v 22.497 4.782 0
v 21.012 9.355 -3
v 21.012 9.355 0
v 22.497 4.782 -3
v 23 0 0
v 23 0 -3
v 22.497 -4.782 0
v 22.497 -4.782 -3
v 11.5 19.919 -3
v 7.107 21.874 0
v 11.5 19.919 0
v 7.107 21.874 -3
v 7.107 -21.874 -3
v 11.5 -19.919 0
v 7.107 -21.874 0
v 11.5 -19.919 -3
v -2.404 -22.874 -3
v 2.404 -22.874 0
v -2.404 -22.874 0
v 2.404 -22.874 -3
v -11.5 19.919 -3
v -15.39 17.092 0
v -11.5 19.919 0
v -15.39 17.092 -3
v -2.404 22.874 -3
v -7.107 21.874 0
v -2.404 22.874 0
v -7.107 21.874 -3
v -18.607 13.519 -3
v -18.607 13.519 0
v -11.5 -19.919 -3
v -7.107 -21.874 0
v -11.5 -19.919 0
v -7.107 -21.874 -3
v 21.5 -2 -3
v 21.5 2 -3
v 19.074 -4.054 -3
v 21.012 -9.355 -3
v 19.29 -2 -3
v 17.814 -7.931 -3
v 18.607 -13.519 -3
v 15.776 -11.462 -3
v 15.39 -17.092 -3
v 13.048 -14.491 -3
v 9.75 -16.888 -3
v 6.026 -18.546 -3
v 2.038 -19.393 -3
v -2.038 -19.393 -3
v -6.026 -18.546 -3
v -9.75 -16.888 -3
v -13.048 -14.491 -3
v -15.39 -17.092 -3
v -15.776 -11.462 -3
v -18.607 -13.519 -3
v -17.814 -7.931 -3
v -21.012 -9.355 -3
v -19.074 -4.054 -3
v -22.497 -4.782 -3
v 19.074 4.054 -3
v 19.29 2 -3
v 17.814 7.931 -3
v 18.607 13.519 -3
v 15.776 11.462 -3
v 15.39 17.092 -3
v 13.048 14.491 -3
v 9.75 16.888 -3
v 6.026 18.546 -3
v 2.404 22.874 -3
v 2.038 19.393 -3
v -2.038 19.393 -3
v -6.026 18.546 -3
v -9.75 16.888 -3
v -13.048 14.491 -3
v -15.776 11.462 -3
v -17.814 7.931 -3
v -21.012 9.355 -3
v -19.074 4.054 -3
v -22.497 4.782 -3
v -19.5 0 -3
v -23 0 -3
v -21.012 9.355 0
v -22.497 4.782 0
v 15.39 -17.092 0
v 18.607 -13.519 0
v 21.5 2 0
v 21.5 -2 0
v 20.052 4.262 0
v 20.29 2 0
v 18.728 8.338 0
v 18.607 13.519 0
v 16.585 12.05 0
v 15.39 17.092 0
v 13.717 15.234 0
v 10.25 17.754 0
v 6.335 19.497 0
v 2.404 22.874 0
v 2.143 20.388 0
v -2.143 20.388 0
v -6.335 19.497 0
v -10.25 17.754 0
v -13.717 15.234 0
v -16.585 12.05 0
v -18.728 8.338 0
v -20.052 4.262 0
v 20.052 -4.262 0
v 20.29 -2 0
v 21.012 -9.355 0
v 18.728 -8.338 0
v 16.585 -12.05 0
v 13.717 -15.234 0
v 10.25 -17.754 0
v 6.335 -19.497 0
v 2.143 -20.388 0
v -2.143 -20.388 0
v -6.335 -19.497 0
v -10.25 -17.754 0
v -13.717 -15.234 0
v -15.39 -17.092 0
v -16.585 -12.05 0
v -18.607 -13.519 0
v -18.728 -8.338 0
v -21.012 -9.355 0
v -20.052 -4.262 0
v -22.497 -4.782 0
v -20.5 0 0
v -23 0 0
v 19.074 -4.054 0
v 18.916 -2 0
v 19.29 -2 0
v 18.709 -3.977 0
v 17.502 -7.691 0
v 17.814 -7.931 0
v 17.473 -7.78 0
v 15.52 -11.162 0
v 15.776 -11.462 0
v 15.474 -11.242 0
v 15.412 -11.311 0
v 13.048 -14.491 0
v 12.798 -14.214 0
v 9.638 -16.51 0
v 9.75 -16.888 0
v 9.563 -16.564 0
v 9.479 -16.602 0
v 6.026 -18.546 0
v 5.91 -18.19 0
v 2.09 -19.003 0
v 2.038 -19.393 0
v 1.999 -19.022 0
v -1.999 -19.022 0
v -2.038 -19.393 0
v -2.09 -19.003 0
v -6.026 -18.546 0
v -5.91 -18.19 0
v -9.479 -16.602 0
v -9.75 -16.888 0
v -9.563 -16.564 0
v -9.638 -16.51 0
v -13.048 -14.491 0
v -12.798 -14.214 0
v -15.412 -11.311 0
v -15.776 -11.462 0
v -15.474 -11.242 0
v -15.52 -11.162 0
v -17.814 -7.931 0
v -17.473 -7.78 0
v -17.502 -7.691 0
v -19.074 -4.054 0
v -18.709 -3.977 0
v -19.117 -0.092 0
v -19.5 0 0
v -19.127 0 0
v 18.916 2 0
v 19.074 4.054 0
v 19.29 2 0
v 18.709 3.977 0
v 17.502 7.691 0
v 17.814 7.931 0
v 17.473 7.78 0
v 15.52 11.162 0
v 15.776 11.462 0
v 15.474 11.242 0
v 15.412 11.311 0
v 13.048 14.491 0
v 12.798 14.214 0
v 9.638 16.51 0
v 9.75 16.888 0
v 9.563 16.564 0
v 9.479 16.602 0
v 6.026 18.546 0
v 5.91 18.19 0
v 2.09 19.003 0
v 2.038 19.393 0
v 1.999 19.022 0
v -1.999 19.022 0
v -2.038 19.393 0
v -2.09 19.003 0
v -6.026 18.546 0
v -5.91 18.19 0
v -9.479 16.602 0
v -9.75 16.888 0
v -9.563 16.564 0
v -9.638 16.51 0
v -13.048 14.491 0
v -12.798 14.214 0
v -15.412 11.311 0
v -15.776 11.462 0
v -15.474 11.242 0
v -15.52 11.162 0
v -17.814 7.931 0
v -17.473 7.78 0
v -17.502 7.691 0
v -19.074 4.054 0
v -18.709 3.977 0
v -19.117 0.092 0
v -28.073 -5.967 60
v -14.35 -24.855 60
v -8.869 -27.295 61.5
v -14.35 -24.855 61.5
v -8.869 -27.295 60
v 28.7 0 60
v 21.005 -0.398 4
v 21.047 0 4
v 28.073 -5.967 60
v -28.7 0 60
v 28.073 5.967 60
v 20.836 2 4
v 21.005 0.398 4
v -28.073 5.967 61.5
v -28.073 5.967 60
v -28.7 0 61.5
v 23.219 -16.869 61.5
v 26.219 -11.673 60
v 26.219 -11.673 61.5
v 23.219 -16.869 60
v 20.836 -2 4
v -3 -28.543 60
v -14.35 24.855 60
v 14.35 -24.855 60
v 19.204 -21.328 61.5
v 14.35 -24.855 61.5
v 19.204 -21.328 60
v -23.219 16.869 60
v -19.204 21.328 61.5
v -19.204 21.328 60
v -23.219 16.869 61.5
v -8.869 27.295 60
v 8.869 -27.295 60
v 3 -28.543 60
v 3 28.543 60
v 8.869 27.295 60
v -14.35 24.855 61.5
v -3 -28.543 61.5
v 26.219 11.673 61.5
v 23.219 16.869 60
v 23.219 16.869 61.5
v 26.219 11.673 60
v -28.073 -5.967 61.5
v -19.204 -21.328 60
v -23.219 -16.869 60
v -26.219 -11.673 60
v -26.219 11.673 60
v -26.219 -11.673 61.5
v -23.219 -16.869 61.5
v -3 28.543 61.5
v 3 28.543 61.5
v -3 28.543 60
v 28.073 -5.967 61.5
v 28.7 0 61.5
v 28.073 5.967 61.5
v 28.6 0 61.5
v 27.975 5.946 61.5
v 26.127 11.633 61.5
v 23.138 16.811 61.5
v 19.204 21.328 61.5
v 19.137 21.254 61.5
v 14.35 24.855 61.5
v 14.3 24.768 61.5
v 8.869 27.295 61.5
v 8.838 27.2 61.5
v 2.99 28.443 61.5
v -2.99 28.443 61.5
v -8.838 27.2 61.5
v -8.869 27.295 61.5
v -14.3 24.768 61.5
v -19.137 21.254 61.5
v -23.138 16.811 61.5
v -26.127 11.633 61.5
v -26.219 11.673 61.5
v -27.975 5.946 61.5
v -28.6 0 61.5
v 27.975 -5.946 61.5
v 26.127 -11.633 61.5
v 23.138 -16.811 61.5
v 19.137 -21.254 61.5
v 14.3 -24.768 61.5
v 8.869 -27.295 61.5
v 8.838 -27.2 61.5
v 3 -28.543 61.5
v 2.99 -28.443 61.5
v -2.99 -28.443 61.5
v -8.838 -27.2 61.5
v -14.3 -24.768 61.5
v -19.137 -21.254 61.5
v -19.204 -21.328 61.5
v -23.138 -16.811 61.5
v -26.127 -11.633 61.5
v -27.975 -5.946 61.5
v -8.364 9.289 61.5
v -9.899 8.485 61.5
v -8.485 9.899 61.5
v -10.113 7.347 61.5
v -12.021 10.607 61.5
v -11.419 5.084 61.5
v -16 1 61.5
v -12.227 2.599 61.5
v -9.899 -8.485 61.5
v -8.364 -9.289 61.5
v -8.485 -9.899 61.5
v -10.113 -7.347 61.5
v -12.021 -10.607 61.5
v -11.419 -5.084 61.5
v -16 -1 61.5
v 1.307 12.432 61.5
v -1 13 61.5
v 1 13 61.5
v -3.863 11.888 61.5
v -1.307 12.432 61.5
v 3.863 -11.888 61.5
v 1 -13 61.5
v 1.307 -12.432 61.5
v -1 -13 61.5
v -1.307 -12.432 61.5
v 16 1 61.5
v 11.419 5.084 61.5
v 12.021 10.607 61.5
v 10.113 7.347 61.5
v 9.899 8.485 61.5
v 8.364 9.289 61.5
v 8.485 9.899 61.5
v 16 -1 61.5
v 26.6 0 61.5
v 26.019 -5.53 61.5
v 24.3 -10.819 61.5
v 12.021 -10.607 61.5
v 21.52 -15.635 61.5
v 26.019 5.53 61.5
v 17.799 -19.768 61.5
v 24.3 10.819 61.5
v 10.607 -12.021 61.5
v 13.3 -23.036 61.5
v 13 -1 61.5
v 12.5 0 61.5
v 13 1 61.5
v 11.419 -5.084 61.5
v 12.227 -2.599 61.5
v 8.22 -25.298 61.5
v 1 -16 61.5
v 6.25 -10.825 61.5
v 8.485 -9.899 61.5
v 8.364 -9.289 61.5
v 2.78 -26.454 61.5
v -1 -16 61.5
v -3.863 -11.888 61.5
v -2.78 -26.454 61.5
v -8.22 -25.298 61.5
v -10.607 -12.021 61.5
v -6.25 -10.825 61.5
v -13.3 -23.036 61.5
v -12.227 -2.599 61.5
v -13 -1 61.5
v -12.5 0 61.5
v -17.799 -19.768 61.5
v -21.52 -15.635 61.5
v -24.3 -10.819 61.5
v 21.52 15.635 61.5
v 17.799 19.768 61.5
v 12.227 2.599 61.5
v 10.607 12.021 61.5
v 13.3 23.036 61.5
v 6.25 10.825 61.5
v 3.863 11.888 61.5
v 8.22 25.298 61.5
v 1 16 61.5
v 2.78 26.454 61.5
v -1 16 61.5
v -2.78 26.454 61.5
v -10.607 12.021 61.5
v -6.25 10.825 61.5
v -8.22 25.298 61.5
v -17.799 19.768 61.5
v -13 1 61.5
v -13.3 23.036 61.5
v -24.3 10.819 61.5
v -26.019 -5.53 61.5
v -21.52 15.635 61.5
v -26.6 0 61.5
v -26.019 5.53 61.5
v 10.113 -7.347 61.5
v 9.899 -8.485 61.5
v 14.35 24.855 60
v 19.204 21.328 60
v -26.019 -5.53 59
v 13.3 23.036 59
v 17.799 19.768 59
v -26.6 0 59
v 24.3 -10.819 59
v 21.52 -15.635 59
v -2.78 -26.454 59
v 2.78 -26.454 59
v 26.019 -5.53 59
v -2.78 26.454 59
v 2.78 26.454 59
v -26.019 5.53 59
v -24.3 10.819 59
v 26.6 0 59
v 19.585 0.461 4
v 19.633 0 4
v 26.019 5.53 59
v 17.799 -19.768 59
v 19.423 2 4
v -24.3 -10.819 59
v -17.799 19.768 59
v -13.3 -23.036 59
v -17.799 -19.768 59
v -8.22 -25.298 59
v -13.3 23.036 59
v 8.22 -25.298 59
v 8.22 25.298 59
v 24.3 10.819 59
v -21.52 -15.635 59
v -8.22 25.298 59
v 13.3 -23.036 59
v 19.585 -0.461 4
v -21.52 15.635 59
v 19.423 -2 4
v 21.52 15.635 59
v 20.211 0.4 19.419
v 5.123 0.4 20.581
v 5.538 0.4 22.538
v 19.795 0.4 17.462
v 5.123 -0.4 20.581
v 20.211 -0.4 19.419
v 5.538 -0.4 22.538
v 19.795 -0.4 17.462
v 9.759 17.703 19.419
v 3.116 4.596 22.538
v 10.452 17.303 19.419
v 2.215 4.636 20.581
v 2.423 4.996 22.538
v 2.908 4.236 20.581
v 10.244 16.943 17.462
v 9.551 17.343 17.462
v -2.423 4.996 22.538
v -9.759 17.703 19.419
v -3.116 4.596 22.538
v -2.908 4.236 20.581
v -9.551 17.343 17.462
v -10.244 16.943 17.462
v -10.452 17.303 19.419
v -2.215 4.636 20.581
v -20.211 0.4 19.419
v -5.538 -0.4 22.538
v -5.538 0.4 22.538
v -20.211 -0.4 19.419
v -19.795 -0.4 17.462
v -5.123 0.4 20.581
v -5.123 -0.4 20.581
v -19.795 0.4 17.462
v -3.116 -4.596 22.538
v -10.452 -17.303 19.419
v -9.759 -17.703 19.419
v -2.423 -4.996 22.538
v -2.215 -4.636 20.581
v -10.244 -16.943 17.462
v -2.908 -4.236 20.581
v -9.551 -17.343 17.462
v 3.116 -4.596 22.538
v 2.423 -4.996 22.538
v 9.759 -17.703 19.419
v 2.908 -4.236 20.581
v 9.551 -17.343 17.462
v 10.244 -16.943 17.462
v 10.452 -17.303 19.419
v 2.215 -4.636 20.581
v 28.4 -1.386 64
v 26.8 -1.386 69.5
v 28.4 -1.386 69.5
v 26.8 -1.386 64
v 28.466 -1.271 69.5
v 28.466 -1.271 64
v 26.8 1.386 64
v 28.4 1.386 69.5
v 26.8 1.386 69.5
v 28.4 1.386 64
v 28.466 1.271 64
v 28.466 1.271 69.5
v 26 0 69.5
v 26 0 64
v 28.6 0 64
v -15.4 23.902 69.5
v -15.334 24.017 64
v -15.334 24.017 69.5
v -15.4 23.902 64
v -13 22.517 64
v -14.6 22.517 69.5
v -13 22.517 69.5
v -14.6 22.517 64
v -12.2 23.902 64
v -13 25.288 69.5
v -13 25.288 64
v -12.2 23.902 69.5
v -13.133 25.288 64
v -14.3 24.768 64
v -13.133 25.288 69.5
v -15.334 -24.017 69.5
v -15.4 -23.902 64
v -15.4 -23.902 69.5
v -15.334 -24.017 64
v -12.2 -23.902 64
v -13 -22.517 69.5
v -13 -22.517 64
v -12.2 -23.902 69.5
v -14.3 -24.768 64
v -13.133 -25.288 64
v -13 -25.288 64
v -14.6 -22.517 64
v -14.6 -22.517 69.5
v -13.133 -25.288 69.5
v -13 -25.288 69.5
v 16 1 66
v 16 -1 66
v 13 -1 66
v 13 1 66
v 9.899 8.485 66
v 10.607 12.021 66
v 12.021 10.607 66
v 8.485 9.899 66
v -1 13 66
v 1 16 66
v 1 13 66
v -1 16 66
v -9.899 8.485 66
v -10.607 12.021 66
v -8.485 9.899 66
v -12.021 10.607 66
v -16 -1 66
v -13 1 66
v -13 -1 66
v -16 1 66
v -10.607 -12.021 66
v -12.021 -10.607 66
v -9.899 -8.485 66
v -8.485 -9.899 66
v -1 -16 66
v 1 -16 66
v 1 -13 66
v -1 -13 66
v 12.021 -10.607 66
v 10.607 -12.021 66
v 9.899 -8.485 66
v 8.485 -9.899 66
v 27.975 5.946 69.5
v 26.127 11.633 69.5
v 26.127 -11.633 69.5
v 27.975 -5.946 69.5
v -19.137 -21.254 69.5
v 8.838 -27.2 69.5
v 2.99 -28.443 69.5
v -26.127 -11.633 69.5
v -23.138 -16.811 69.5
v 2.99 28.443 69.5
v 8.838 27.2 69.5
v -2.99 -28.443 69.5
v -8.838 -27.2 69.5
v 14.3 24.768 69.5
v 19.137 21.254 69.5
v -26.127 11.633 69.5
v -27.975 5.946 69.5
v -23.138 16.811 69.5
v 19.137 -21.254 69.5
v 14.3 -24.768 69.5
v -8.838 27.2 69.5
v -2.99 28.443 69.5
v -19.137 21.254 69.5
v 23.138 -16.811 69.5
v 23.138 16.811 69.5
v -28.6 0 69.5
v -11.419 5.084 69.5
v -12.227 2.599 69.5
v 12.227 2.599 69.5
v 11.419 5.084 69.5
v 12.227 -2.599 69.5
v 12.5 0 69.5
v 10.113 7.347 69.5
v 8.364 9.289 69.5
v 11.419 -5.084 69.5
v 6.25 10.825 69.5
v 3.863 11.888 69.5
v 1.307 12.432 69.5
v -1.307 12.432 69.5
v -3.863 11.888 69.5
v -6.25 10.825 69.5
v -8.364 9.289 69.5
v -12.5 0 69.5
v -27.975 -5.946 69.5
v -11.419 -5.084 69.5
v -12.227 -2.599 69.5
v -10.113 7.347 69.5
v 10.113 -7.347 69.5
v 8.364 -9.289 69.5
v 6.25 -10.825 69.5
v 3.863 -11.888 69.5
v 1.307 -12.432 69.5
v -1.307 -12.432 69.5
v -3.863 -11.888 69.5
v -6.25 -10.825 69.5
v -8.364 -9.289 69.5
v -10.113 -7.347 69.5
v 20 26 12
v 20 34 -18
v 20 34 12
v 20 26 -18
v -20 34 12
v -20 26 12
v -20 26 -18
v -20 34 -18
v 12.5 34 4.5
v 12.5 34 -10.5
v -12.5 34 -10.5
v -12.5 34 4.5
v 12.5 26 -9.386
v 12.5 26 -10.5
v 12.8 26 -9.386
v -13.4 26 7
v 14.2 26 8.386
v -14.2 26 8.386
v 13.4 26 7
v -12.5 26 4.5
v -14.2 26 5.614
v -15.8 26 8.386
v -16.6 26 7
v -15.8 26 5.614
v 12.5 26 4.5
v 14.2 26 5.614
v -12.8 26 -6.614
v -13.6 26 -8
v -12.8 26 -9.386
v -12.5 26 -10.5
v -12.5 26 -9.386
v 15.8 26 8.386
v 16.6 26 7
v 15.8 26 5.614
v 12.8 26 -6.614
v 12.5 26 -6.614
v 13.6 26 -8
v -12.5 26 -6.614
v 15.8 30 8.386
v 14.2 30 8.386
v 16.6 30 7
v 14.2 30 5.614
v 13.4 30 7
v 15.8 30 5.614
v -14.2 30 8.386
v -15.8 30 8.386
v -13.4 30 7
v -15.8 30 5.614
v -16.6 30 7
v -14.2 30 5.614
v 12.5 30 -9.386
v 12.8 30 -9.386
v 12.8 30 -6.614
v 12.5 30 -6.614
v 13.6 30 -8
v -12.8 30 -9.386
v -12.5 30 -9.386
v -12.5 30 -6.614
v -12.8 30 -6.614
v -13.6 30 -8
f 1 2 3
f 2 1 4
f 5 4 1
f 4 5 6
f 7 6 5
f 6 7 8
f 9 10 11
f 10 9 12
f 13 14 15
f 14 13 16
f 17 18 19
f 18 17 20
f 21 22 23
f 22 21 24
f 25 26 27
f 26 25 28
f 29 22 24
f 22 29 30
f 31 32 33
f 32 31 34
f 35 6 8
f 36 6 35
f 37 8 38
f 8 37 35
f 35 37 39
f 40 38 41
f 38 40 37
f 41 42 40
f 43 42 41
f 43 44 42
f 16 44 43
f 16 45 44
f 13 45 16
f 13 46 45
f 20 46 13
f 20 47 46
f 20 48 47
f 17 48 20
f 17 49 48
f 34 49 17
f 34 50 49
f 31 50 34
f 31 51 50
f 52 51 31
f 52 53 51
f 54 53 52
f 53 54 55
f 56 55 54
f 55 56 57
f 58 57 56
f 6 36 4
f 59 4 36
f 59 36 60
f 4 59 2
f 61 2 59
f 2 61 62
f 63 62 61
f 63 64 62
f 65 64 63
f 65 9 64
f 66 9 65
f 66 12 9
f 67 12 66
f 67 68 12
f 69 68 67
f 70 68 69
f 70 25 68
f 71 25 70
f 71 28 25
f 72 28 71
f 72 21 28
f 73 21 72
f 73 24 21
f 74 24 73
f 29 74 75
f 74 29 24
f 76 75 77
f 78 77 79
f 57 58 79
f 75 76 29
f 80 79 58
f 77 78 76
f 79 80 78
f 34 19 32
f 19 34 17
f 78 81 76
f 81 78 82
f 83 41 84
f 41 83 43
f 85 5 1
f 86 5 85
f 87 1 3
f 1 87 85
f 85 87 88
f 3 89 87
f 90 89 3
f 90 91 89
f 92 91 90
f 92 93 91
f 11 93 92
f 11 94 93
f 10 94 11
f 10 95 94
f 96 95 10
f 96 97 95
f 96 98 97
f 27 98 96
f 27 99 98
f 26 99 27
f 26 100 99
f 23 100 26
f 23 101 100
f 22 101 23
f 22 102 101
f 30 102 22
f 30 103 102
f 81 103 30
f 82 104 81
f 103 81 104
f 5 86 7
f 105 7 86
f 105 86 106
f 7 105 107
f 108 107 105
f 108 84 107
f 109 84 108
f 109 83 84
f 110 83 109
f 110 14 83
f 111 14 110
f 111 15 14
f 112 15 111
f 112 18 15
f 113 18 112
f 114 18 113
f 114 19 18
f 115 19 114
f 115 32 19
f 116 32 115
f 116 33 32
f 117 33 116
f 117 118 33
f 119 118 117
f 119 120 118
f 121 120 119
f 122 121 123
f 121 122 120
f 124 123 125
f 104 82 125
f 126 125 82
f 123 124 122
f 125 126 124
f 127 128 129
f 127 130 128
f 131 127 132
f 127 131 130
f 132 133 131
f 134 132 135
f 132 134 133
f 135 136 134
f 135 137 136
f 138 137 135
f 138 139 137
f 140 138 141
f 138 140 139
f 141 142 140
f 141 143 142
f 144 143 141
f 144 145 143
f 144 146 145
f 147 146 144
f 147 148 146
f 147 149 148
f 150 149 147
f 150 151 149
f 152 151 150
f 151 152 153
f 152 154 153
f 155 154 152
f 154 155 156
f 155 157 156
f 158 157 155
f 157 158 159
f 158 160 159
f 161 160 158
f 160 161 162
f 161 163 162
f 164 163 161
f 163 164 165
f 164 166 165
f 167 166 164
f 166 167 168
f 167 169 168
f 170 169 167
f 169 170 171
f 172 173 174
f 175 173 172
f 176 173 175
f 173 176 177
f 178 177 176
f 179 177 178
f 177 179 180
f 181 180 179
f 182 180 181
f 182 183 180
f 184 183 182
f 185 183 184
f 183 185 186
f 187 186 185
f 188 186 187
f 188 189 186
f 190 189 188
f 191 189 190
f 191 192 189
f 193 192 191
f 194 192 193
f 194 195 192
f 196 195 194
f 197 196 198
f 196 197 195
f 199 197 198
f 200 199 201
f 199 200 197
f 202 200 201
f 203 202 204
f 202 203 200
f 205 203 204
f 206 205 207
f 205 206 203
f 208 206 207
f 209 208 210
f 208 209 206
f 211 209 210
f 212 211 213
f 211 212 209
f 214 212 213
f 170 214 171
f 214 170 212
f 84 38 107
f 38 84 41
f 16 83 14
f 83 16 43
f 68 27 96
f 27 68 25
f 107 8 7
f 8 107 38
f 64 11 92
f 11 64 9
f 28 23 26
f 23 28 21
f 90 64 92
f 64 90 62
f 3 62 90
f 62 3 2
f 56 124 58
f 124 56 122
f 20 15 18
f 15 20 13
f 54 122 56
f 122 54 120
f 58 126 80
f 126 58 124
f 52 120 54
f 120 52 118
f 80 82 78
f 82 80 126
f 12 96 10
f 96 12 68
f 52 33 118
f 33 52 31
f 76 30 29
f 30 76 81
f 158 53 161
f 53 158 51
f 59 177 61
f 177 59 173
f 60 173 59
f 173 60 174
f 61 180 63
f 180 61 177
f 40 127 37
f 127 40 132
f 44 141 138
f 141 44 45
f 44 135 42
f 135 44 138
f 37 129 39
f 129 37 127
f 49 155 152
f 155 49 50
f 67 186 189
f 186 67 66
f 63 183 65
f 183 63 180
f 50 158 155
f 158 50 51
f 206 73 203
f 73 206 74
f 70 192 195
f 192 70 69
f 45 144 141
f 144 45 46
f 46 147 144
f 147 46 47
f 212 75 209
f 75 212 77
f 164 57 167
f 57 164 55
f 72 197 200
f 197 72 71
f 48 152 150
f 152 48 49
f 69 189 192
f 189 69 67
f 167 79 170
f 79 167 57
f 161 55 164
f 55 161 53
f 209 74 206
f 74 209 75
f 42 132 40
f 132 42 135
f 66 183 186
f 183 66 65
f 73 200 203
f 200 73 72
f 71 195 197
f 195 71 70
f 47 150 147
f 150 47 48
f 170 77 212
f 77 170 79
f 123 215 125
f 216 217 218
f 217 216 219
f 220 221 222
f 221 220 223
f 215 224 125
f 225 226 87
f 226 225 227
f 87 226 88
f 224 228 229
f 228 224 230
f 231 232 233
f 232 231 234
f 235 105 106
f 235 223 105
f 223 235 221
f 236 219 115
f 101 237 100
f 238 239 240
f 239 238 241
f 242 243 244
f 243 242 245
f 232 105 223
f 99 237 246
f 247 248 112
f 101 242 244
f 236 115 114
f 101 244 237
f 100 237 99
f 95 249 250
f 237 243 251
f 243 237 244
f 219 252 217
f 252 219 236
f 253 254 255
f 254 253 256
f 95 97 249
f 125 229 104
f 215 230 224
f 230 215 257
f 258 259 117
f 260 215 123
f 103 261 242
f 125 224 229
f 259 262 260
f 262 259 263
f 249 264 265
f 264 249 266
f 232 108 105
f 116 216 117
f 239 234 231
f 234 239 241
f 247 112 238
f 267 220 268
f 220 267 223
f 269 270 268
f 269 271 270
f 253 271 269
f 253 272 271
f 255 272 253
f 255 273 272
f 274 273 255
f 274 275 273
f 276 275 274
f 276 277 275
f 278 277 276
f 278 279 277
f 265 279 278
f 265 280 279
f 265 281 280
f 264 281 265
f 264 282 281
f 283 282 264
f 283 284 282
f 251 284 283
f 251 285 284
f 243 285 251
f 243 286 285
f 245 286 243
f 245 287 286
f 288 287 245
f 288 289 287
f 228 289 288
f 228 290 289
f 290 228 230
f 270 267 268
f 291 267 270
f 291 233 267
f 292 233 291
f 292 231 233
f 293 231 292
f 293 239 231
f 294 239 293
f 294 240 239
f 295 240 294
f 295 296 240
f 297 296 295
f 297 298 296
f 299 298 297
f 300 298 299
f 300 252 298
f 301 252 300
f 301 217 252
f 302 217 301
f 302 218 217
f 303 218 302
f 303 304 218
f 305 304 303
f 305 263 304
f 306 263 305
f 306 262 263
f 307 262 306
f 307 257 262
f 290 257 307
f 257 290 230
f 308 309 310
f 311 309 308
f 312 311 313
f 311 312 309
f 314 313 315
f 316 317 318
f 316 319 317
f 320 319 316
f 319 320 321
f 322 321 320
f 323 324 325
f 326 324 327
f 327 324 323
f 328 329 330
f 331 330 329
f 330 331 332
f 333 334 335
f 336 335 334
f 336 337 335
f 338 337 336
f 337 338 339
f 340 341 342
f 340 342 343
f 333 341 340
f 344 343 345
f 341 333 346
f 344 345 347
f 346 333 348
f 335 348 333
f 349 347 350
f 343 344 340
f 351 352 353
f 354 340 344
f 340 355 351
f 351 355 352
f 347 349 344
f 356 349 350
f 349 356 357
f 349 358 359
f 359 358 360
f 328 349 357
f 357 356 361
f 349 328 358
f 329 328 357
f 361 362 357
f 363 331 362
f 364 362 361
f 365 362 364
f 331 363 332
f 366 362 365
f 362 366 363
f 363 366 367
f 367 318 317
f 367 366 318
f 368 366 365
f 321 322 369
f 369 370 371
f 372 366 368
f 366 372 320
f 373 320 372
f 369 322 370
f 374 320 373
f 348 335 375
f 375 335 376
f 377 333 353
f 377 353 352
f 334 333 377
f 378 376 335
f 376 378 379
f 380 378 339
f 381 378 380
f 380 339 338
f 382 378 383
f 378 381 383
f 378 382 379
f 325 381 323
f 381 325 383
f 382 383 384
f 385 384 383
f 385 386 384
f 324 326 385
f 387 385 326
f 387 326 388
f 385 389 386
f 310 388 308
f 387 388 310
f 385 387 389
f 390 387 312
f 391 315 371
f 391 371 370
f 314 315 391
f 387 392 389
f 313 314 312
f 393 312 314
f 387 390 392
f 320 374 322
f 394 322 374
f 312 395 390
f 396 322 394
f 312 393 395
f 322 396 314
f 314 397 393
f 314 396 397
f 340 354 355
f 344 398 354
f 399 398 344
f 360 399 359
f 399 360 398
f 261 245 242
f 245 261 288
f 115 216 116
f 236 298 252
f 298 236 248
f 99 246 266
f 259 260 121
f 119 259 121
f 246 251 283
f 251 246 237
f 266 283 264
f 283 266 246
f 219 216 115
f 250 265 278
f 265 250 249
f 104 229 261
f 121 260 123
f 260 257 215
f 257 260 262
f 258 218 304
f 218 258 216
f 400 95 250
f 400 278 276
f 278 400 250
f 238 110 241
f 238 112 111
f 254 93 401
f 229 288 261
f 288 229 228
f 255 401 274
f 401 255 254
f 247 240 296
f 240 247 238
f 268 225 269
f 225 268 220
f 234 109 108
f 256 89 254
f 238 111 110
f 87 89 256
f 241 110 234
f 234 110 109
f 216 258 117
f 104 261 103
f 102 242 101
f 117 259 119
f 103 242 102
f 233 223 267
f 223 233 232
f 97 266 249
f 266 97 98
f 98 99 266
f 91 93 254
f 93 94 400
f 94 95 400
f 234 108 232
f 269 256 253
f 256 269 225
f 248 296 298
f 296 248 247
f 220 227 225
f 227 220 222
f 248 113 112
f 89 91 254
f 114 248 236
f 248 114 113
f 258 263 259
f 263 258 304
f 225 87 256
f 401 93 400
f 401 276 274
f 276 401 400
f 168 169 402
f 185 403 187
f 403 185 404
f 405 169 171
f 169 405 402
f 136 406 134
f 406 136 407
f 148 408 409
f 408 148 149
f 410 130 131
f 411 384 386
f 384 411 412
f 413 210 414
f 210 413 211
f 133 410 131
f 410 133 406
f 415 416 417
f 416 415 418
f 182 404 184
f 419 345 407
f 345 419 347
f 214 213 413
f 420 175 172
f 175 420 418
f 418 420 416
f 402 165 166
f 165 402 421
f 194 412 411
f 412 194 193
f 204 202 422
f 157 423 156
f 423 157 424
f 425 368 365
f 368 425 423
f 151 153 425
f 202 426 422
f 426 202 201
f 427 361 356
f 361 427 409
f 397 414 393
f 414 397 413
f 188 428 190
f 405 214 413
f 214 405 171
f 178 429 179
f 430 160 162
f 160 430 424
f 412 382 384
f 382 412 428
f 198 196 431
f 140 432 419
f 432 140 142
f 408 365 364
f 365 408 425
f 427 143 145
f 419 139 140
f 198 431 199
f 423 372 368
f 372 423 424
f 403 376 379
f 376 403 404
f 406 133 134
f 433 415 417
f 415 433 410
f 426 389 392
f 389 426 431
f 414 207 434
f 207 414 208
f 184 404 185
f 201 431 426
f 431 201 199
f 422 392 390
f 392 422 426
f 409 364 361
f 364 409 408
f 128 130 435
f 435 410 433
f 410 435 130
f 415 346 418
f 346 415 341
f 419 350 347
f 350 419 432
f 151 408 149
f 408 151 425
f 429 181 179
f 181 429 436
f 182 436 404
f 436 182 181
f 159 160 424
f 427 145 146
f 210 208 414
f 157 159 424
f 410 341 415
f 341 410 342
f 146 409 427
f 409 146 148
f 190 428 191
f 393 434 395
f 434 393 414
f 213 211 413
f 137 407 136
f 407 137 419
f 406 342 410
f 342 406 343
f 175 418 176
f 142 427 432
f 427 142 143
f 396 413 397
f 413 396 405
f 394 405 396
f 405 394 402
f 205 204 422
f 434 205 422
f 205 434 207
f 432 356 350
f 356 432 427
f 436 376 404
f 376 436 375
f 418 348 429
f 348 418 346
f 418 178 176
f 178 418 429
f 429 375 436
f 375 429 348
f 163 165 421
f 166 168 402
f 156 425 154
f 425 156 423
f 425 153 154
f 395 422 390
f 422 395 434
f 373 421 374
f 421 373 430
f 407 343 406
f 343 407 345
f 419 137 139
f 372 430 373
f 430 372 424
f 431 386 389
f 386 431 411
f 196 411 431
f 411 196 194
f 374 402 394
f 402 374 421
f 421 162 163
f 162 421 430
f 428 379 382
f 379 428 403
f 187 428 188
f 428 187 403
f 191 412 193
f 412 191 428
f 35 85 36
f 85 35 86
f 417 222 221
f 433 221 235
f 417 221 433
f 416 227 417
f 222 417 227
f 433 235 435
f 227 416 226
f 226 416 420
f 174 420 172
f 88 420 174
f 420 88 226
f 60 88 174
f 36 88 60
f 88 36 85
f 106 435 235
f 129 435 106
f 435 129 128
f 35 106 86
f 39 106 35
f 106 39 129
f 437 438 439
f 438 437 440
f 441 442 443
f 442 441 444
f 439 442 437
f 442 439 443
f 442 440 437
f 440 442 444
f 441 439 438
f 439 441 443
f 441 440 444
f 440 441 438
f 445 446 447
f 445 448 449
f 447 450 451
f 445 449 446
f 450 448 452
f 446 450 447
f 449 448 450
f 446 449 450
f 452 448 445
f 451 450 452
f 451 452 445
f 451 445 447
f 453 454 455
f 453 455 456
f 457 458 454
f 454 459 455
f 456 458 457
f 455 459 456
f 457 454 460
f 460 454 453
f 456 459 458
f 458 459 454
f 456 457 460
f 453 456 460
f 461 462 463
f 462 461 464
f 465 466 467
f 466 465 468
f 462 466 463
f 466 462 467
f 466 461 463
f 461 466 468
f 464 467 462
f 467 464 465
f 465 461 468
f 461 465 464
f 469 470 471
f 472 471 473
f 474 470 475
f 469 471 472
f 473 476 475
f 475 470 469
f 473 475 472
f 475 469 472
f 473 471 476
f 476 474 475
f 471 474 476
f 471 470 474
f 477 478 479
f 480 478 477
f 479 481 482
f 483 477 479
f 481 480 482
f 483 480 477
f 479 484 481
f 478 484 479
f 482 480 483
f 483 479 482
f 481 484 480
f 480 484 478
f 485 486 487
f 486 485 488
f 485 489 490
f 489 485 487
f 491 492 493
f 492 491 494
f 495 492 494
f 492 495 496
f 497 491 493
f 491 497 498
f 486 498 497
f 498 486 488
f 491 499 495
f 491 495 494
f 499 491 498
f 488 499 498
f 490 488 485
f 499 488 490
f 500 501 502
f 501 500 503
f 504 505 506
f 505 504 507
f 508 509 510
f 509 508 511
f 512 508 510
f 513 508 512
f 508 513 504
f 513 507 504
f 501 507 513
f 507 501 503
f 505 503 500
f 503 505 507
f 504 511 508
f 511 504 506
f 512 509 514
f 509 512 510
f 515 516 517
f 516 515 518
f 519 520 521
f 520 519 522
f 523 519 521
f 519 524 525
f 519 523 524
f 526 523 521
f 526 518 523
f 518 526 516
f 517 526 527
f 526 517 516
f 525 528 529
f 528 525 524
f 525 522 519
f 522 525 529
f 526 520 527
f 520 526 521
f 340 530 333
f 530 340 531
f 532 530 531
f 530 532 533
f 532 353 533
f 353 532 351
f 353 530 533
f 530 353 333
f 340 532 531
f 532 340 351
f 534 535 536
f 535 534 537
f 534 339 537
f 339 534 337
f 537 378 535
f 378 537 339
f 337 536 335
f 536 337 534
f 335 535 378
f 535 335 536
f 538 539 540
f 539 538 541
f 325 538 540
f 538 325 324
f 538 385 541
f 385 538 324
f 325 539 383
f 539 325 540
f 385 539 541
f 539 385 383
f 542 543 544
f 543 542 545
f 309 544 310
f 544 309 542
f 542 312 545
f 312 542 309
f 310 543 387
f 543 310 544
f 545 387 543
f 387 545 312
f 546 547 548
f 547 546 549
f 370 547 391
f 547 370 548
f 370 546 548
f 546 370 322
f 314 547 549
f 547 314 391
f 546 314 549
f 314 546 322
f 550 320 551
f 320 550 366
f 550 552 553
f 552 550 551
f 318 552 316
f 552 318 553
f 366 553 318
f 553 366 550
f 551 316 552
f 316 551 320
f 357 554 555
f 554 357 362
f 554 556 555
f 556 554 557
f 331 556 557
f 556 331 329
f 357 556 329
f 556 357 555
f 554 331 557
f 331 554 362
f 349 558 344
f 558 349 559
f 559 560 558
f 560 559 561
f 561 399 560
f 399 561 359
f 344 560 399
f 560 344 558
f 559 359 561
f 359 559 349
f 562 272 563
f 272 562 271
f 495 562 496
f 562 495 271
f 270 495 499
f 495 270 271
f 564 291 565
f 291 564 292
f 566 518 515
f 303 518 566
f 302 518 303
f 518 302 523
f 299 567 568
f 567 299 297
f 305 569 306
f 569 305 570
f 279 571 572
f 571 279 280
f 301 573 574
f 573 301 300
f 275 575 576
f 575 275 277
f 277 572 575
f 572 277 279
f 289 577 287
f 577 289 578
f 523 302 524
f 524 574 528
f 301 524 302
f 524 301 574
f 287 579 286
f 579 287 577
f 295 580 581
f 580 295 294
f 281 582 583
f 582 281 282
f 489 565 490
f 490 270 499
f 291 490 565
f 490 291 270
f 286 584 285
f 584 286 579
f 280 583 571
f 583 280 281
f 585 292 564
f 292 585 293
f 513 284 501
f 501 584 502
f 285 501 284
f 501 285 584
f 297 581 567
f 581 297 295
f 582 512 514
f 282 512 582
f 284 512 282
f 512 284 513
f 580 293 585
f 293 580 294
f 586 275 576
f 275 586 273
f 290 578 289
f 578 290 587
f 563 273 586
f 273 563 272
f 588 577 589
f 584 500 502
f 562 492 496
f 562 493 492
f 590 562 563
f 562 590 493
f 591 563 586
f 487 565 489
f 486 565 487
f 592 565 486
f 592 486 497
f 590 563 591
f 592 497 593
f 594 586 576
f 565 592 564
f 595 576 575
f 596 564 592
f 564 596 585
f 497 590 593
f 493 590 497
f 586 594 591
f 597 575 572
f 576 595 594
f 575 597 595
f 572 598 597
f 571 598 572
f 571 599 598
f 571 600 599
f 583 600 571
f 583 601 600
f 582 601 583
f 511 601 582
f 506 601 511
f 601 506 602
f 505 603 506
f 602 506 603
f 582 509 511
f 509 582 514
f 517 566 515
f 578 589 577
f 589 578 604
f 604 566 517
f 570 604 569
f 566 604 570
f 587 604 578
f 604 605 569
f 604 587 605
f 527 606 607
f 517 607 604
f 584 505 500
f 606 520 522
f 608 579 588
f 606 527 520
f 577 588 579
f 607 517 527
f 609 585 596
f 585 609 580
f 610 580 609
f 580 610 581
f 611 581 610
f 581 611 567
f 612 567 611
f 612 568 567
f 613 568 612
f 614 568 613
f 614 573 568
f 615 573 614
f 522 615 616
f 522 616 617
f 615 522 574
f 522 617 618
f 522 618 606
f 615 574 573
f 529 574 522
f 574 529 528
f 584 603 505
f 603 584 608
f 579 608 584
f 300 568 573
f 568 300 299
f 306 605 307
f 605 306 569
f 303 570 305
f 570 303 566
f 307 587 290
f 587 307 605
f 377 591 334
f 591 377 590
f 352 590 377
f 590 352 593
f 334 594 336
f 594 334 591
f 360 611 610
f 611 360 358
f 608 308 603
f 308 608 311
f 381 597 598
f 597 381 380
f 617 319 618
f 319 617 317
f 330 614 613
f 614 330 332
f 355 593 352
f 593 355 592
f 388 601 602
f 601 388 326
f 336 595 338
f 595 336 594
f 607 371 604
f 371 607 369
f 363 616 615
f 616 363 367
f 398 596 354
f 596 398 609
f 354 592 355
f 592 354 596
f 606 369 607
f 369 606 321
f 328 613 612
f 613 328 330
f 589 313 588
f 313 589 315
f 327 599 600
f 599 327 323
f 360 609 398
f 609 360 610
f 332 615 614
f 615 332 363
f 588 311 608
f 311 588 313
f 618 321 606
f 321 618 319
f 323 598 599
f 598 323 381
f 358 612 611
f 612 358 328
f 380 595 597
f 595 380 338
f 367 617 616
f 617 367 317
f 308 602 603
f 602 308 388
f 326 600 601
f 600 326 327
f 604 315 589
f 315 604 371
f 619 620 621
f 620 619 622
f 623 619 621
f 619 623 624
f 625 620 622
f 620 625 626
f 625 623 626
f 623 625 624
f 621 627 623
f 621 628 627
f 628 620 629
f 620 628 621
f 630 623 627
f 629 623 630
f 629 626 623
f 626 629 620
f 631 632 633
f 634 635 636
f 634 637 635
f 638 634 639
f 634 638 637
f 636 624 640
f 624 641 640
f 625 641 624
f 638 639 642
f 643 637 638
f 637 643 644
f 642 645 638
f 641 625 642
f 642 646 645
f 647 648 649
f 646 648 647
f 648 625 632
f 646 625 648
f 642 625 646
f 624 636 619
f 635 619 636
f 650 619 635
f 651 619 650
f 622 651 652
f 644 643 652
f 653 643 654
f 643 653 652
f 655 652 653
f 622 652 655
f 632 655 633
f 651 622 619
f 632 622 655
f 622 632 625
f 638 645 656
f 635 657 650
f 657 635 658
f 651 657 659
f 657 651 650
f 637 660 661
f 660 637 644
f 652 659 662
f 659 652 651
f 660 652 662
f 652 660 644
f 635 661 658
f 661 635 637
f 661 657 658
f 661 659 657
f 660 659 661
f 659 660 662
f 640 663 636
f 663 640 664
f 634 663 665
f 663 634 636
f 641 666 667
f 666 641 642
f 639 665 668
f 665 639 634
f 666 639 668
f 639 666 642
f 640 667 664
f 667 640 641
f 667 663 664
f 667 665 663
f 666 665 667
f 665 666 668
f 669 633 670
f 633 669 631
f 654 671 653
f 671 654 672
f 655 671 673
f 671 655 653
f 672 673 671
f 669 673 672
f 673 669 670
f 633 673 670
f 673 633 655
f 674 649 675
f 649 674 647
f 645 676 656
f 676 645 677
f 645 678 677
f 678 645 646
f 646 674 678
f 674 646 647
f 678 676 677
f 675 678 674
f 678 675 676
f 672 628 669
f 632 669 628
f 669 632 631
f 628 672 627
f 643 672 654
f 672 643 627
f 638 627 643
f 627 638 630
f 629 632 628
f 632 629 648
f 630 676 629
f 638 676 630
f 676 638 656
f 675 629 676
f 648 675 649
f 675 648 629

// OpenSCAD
// 4020 Axial Fan Hotend Cooling Duct
// Optimized for hotend cooling and heat break cooling
// CFD-optimized airflow design

// Fan specifications
fan_size = 40;              // 4020 fan outer dimension
fan_thickness = 20;         // Fan depth
fan_hole_spacing = 32;      // Mounting hole distance
fan_hole_diameter = 3.2;    // M3 screw holes

// Duct parameters
inlet_diameter = 38;        // Optimized for 4020 fan
duct_total_length = 60;     // Total duct length
hotend_clearance = 25;      // Clearance around hotend
wall_thickness = 1.5;       // Wall thickness

// Airflow optimization
expansion_ratio = 1.4;      // Outlet expansion for pressure recovery
guide_vane_count = 6;       // Number of airflow guide vanes
diffuser_angle = 12;        // Diffuser half-angle (optimal: 7-12°)

module 4020_hotend_duct() {
    difference() {
        union() {
            // Main duct body with smooth expansion
            hull() {
                // Fan connection flange
                translate([0, 0, 0])
                    cylinder(h = wall_thickness, d = inlet_diameter + 2*wall_thickness);
                
                // Intermediate expansion
                translate([0, 0, duct_total_length/2])
                    cylinder(h = wall_thickness, d = (inlet_diameter + 2*wall_thickness) * 1.2);
                
                // Final outlet with optimized expansion
                translate([0, 0, duct_total_length])
                    cylinder(h = wall_thickness, d = (inlet_diameter + 2*wall_thickness) * expansion_ratio);
            }
            
            // Mounting flange for 4020 fan
            translate([0, 0, -3])
                difference() {
                    cylinder(h = 3, d = fan_size + 6);
                    cylinder(h = 4, d = fan_size - 1);
                }
        }
        
        // Internal airflow channel
        hull() {
            // Fan inlet
            translate([0, 0, -1])
                cylinder(h = wall_thickness + 2, d = inlet_diameter);
            
            // Gradual expansion for optimal pressure recovery
            translate([0, 0, duct_total_length/2])
                cylinder(h = wall_thickness + 2, d = inlet_diameter * 1.15);
            
            // Final outlet
            translate([0, 0, duct_total_length - 1])
                cylinder(h = wall_thickness + 3, d = inlet_diameter * expansion_ratio);
        }
        
        // Fan mounting holes
        for (i = [0:3]) {
            rotate([0, 0, i*90 + 45])
                translate([fan_hole_spacing/2, 0, -4])
                    cylinder(h = 8, d = fan_hole_diameter);
        }
        
        // Central hub clearance
        translate([0, 0, -2])
            cylinder(h = 6, d = 12);
        
        // Hotend clearance cutout
        translate([0, 0, duct_total_length + 5])
            cylinder(h = 15, d = hotend_clearance);
        
        // Wire management slot
        translate([fan_size/2 - 1.5, -2, -4])
            cube([3, 4, 8]);
    }
    
    // Airflow guide vanes for reduced turbulence
    for (i = [0:guide_vane_count-1]) {
        rotate([0, 0, i * (360/guide_vane_count)])
            translate([inlet_diameter/3, 0, duct_total_length/3])
                rotate([0, diffuser_angle, 0])
                    cube([duct_total_length/4, 0.8, 2], center = true);
    }
}

// Modular hotend mount adapter
module hotend_mount_adapter() {
    difference() {
        // Main adapter ring
        translate([0, 0, duct_total_length + wall_thickness])
            cylinder(h = 8, d = inlet_diameter * expansion_ratio + 4);
        
        // Central hotend clearance
        translate([0, 0, duct_total_length])
            cylinder(h = 12, d = hotend_clearance);
        
        // Mounting tabs cutouts
        for (i = [0:2]) {
            rotate([0, 0, i*120])
                translate([inlet_diameter * expansion_ratio/2 + 1, 0, duct_total_length + 4])
                    cylinder(h = 6, d = 3.2);
        }
        
        // Airflow channels around hotend
        for (i = [0:7]) {
            rotate([0, 0, i*45])
                translate([hotend_clearance/2 + 2, 0, duct_total_length])
                    cube([3, 2, 12], center = true);
        }
    }
}

// Universal extruder mounting bracket
module extruder_bracket() {
    translate([0, fan_size/2 + 10, -3]) {
        difference() {
            // Main bracket
            cube([40, 8, 30], center = true);
            
            // Mounting holes for various extruders
            // E3D V6/Volcano pattern
            translate([15, 0, 10])
                rotate([90, 0, 0])
                    cylinder(h = 10, d = 3.2);
            translate([-15, 0, 10])
                rotate([90, 0, 0])
                    cylinder(h = 10, d = 3.2);
            
            // Alternative mounting pattern
            translate([12, 0, -5])
                rotate([90, 0, 0])
                    cylinder(h = 10, d = 3.2);
            translate([-12, 0, -5])
                rotate([90, 0, 0])
                    cylinder(h = 10, d = 3.2);
            
            // Weight reduction
            translate([0, 0, 0])
                cube([25, 10, 15], center = true);
        }
    }
}

// Adjustable airflow deflector
module airflow_deflector() {
    translate([0, 0, duct_total_length + wall_thickness + 8]) {
        difference() {
            // Deflector ring
            cylinder(h = 3, d = inlet_diameter * expansion_ratio);
            cylinder(h = 4, d = inlet_diameter * expansion_ratio - 6);
            
            // Adjustment slots
            for (i = [0:5]) {
                rotate([0, 0, i*60])
                    translate([inlet_diameter * expansion_ratio/2 - 2, 0, 0])
                        cube([2, 1, 4], center = true);
            }
        }
        
        // Directional vanes
        for (i = [0:3]) {
            rotate([0, 0, i*90 + 22.5])
                translate([inlet_diameter * expansion_ratio/2 - 4, 0, 1.5])
                    rotate([30, 0, 0])
                        cube([6, 0.8, 4], center = true);
        }
    }
}

// Generate main duct
4020_hotend_duct();

// Add hotend mount adapter
hotend_mount_adapter();

// Add extruder bracket
extruder_bracket();

// Add adjustable deflector (comment out if not needed)
// airflow_deflector();
